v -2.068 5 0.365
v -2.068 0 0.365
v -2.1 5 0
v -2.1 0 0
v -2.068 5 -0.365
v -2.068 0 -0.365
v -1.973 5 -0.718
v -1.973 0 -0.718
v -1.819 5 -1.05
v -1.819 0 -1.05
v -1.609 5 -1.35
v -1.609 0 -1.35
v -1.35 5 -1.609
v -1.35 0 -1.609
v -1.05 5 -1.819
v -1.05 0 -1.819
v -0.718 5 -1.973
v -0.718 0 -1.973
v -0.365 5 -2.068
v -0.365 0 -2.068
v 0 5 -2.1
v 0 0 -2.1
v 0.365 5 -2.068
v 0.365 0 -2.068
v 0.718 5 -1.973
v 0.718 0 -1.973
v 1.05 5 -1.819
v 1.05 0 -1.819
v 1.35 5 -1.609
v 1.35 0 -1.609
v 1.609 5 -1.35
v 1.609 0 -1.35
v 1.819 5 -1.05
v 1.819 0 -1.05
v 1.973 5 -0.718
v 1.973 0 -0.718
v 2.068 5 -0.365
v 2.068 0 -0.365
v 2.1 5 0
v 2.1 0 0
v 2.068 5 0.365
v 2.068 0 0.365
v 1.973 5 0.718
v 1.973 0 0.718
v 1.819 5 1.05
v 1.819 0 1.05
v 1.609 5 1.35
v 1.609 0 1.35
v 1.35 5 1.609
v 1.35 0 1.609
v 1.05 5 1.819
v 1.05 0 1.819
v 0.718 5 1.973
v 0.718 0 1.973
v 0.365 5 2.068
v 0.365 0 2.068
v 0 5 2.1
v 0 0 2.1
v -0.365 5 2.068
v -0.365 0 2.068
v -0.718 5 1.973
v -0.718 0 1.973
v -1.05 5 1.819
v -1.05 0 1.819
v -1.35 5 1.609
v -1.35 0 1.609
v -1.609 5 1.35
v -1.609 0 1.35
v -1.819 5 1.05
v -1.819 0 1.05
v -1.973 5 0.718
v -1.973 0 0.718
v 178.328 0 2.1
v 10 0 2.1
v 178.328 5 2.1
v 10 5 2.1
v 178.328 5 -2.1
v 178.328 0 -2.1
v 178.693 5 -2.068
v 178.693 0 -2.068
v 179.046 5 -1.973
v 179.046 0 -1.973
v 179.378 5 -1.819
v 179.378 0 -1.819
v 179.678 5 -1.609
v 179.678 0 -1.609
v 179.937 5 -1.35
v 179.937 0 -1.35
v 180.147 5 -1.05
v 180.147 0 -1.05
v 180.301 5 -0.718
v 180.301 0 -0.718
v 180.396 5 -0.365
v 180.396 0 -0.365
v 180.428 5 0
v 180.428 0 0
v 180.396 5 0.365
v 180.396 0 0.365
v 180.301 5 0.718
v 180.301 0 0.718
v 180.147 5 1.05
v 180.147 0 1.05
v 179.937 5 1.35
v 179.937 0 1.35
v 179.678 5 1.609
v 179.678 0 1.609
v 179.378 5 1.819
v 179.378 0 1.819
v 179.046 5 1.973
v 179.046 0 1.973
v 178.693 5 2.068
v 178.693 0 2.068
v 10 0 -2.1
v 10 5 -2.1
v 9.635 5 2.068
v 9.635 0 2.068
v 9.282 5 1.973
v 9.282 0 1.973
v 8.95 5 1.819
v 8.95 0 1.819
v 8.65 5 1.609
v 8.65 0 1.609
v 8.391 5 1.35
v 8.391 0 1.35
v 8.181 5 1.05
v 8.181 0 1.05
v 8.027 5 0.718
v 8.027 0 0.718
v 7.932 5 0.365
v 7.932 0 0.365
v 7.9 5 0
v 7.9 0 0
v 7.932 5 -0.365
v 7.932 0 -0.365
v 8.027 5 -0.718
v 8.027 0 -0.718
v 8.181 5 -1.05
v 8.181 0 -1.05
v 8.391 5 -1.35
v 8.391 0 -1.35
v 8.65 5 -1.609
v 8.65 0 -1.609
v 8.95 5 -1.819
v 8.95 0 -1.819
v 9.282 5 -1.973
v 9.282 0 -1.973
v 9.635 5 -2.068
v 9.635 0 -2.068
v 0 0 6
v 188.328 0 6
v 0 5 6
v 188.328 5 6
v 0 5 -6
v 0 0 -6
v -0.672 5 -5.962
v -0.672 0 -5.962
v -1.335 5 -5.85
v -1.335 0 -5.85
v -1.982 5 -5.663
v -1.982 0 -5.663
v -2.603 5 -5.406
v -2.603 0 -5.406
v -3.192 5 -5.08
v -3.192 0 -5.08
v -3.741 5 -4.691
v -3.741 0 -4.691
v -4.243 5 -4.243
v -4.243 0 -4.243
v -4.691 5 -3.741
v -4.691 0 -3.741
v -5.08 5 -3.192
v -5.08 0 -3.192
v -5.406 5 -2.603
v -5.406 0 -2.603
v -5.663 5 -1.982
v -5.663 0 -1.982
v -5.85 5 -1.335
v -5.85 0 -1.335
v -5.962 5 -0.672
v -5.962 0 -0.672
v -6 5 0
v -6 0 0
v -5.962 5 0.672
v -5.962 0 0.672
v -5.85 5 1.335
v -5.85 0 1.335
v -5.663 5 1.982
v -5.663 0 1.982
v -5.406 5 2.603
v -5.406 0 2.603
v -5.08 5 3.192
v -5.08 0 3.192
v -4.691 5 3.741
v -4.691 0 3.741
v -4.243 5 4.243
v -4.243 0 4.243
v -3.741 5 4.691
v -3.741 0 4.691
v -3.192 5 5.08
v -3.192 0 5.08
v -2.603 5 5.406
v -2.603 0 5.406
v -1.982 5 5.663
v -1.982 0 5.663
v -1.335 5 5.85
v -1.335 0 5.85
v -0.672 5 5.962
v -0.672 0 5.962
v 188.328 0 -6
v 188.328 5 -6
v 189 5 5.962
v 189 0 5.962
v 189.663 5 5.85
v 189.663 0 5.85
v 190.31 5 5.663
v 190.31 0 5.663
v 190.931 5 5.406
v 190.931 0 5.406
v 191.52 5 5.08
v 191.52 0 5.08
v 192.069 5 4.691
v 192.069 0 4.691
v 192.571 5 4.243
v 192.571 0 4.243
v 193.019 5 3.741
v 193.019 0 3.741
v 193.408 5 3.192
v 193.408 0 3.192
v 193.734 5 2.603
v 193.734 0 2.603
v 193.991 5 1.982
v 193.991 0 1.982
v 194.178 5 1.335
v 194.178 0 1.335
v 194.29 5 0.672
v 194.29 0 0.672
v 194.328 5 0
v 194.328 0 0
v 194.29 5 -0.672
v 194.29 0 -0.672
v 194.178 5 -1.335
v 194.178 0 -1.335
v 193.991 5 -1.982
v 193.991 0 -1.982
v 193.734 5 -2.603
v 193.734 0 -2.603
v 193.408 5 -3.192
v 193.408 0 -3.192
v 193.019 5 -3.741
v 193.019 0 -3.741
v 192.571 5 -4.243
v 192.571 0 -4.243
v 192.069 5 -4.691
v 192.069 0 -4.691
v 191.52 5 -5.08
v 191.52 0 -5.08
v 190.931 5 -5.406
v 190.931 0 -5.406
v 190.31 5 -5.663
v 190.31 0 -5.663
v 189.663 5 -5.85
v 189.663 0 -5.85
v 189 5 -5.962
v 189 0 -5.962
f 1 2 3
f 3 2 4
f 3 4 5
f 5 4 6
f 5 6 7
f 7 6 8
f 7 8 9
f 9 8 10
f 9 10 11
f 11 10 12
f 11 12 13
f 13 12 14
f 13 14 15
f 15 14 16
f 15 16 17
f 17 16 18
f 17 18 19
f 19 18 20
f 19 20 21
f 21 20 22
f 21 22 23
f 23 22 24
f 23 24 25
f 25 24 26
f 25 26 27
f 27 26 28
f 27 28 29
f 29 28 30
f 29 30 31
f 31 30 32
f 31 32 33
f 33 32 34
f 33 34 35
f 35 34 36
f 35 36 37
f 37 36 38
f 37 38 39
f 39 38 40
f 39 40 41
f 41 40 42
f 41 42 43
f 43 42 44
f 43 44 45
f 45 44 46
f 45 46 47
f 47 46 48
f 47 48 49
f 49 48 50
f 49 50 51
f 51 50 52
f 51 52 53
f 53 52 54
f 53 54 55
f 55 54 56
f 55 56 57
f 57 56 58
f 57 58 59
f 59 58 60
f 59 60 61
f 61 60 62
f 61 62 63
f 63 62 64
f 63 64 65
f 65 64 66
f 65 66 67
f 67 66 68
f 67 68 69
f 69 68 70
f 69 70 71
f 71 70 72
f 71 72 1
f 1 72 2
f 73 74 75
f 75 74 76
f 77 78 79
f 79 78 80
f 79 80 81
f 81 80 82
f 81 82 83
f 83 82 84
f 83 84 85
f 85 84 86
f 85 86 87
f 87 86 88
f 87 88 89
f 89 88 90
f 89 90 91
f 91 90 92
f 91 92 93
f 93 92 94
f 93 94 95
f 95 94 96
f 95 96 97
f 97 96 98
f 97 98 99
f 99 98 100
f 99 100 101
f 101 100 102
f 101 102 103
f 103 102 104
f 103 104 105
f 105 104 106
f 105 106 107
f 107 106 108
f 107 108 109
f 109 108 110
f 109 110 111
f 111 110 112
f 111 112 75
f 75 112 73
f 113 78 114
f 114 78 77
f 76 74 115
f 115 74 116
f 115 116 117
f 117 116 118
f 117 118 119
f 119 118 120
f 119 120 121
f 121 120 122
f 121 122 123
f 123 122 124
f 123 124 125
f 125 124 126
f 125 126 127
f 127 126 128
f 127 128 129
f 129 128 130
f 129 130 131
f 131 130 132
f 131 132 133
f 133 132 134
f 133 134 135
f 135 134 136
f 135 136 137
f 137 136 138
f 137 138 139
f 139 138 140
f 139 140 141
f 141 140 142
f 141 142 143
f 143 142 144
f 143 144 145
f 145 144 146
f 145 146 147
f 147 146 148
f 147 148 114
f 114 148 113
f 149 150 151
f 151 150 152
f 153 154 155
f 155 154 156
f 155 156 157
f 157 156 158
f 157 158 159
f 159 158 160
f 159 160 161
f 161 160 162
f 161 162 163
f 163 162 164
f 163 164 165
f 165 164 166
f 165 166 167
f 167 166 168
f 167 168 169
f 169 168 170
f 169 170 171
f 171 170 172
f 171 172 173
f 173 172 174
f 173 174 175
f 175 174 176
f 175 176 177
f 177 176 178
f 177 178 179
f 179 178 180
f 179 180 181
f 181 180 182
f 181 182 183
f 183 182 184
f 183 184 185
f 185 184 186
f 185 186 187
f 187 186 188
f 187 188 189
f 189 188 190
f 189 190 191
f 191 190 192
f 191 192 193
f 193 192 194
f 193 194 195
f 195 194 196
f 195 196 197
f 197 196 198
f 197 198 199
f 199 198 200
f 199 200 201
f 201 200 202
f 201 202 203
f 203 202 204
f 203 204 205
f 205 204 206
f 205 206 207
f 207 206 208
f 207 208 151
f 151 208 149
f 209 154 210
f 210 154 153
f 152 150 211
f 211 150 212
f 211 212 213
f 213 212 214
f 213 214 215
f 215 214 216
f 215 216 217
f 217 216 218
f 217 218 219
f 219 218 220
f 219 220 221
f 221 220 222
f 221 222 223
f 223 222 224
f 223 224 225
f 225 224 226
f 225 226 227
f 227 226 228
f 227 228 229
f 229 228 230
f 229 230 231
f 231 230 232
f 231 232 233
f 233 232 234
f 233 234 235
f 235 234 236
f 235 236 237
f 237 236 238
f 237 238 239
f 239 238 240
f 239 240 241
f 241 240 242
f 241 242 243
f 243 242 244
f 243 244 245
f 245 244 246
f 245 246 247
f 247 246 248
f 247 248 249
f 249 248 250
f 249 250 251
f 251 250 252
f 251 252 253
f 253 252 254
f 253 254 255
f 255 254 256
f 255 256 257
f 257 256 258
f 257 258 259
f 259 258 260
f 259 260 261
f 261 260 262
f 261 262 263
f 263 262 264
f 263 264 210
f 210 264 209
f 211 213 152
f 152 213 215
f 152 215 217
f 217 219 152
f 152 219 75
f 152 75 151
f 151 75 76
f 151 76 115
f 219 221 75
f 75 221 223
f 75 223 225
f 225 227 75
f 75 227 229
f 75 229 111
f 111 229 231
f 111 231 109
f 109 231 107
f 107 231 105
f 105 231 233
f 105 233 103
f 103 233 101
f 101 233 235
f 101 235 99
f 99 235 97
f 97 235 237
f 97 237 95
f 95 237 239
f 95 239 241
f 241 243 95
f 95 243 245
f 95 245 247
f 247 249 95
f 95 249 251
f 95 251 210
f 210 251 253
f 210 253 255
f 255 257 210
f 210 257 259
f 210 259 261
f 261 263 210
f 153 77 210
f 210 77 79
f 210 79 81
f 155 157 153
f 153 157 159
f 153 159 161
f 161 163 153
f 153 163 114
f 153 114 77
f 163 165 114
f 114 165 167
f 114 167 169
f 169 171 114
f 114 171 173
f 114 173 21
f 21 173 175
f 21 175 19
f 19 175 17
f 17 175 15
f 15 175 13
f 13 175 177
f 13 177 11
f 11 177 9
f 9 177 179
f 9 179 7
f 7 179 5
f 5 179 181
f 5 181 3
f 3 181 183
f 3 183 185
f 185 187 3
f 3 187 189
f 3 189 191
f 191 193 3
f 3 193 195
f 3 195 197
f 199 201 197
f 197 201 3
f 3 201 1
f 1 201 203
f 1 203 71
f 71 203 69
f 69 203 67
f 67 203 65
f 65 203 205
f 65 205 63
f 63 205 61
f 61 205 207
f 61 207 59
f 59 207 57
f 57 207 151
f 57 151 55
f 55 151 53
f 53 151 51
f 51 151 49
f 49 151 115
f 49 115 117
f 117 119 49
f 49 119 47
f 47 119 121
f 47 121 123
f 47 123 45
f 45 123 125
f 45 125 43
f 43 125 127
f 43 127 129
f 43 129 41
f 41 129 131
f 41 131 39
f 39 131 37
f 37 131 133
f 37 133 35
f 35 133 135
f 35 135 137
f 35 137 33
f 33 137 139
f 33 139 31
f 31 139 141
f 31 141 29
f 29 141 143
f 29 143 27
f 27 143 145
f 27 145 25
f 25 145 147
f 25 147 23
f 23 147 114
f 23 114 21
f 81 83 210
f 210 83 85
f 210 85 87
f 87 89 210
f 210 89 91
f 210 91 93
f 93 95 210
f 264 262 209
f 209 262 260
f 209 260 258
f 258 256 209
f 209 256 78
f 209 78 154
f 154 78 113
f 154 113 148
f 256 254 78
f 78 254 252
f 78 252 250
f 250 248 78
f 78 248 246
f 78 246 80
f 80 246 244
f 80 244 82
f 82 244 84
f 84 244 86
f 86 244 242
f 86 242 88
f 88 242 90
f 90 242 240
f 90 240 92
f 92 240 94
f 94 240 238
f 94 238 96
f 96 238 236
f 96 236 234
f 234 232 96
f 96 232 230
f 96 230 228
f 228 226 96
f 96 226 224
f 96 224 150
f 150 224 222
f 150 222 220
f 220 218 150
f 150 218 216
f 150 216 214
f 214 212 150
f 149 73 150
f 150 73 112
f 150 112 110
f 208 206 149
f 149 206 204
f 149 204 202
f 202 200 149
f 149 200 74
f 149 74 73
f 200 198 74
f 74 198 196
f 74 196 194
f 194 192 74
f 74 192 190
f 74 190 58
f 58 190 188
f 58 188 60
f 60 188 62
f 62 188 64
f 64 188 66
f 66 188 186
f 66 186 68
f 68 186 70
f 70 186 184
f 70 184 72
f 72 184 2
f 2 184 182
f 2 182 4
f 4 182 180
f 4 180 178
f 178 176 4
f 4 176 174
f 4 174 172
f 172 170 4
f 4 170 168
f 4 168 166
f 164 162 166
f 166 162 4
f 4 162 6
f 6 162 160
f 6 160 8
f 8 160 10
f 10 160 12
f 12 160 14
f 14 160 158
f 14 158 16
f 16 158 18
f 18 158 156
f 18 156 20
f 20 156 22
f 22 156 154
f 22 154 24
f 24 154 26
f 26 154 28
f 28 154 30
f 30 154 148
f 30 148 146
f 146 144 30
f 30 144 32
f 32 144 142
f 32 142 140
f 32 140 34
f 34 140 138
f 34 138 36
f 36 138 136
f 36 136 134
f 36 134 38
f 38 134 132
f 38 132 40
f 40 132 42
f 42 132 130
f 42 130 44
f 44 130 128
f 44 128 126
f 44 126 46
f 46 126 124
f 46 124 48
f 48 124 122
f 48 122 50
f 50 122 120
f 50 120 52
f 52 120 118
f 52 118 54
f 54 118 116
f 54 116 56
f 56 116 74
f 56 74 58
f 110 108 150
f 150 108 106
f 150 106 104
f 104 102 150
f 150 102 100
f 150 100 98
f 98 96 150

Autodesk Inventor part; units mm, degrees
ref_plane "YZ Plane" through (0, 0, 0) normal (1, 0, 0) x (0, 1, 0)
ref_plane "XZ Plane" through (0, 0, 0) normal (0, 1, 0) x (-1, 0, 0)
ref_plane "XY Plane" through (0, 0, 0) normal (0, 0, 1) x (1, 0, 0)
sketch "Sketch1" plane through (0, 0, 0) normal (0, 1, 0) x (-1, 0, 0)
  line L0 (0, 0) -> (-188.328, 0) construction
  line L1 (0, 6) -> (-188.328, 6)
  line L2 (-188.328, -6) -> (0, -6)
  arc A0 (0, -6) -> (0, 6) centre (0, 0) ccw
  arc A1 (-188.328, 6) -> (-188.328, -6) centre (-188.328, 0) ccw
  circle A2 centre (0, 0) radius 2.1
  line L3 (-10, 0) -> (-178.328, 0) construction
  line L4 (-10, 2.1) -> (-178.328, 2.1)
  line L5 (-178.328, -2.1) -> (-10, -2.1)
  arc A3 (-10, -2.1) -> (-10, 2.1) centre (-10, 0) ccw
  arc A4 (-178.328, 2.1) -> (-178.328, -2.1) centre (-178.328, 0) ccw
  point P0 (-94.164, 0)
  point P1 (-94.164, 0)
  dimension "d0" = 188.328
  dimension "d1" = 12
  dimension "d2" = 4.2
  dimension "d3" = 4.2
  dimension "d6" = 10
  dimension "d7" = 10
extrude "Extrusion1" add sketch "Sketch1" along normal blind 5
